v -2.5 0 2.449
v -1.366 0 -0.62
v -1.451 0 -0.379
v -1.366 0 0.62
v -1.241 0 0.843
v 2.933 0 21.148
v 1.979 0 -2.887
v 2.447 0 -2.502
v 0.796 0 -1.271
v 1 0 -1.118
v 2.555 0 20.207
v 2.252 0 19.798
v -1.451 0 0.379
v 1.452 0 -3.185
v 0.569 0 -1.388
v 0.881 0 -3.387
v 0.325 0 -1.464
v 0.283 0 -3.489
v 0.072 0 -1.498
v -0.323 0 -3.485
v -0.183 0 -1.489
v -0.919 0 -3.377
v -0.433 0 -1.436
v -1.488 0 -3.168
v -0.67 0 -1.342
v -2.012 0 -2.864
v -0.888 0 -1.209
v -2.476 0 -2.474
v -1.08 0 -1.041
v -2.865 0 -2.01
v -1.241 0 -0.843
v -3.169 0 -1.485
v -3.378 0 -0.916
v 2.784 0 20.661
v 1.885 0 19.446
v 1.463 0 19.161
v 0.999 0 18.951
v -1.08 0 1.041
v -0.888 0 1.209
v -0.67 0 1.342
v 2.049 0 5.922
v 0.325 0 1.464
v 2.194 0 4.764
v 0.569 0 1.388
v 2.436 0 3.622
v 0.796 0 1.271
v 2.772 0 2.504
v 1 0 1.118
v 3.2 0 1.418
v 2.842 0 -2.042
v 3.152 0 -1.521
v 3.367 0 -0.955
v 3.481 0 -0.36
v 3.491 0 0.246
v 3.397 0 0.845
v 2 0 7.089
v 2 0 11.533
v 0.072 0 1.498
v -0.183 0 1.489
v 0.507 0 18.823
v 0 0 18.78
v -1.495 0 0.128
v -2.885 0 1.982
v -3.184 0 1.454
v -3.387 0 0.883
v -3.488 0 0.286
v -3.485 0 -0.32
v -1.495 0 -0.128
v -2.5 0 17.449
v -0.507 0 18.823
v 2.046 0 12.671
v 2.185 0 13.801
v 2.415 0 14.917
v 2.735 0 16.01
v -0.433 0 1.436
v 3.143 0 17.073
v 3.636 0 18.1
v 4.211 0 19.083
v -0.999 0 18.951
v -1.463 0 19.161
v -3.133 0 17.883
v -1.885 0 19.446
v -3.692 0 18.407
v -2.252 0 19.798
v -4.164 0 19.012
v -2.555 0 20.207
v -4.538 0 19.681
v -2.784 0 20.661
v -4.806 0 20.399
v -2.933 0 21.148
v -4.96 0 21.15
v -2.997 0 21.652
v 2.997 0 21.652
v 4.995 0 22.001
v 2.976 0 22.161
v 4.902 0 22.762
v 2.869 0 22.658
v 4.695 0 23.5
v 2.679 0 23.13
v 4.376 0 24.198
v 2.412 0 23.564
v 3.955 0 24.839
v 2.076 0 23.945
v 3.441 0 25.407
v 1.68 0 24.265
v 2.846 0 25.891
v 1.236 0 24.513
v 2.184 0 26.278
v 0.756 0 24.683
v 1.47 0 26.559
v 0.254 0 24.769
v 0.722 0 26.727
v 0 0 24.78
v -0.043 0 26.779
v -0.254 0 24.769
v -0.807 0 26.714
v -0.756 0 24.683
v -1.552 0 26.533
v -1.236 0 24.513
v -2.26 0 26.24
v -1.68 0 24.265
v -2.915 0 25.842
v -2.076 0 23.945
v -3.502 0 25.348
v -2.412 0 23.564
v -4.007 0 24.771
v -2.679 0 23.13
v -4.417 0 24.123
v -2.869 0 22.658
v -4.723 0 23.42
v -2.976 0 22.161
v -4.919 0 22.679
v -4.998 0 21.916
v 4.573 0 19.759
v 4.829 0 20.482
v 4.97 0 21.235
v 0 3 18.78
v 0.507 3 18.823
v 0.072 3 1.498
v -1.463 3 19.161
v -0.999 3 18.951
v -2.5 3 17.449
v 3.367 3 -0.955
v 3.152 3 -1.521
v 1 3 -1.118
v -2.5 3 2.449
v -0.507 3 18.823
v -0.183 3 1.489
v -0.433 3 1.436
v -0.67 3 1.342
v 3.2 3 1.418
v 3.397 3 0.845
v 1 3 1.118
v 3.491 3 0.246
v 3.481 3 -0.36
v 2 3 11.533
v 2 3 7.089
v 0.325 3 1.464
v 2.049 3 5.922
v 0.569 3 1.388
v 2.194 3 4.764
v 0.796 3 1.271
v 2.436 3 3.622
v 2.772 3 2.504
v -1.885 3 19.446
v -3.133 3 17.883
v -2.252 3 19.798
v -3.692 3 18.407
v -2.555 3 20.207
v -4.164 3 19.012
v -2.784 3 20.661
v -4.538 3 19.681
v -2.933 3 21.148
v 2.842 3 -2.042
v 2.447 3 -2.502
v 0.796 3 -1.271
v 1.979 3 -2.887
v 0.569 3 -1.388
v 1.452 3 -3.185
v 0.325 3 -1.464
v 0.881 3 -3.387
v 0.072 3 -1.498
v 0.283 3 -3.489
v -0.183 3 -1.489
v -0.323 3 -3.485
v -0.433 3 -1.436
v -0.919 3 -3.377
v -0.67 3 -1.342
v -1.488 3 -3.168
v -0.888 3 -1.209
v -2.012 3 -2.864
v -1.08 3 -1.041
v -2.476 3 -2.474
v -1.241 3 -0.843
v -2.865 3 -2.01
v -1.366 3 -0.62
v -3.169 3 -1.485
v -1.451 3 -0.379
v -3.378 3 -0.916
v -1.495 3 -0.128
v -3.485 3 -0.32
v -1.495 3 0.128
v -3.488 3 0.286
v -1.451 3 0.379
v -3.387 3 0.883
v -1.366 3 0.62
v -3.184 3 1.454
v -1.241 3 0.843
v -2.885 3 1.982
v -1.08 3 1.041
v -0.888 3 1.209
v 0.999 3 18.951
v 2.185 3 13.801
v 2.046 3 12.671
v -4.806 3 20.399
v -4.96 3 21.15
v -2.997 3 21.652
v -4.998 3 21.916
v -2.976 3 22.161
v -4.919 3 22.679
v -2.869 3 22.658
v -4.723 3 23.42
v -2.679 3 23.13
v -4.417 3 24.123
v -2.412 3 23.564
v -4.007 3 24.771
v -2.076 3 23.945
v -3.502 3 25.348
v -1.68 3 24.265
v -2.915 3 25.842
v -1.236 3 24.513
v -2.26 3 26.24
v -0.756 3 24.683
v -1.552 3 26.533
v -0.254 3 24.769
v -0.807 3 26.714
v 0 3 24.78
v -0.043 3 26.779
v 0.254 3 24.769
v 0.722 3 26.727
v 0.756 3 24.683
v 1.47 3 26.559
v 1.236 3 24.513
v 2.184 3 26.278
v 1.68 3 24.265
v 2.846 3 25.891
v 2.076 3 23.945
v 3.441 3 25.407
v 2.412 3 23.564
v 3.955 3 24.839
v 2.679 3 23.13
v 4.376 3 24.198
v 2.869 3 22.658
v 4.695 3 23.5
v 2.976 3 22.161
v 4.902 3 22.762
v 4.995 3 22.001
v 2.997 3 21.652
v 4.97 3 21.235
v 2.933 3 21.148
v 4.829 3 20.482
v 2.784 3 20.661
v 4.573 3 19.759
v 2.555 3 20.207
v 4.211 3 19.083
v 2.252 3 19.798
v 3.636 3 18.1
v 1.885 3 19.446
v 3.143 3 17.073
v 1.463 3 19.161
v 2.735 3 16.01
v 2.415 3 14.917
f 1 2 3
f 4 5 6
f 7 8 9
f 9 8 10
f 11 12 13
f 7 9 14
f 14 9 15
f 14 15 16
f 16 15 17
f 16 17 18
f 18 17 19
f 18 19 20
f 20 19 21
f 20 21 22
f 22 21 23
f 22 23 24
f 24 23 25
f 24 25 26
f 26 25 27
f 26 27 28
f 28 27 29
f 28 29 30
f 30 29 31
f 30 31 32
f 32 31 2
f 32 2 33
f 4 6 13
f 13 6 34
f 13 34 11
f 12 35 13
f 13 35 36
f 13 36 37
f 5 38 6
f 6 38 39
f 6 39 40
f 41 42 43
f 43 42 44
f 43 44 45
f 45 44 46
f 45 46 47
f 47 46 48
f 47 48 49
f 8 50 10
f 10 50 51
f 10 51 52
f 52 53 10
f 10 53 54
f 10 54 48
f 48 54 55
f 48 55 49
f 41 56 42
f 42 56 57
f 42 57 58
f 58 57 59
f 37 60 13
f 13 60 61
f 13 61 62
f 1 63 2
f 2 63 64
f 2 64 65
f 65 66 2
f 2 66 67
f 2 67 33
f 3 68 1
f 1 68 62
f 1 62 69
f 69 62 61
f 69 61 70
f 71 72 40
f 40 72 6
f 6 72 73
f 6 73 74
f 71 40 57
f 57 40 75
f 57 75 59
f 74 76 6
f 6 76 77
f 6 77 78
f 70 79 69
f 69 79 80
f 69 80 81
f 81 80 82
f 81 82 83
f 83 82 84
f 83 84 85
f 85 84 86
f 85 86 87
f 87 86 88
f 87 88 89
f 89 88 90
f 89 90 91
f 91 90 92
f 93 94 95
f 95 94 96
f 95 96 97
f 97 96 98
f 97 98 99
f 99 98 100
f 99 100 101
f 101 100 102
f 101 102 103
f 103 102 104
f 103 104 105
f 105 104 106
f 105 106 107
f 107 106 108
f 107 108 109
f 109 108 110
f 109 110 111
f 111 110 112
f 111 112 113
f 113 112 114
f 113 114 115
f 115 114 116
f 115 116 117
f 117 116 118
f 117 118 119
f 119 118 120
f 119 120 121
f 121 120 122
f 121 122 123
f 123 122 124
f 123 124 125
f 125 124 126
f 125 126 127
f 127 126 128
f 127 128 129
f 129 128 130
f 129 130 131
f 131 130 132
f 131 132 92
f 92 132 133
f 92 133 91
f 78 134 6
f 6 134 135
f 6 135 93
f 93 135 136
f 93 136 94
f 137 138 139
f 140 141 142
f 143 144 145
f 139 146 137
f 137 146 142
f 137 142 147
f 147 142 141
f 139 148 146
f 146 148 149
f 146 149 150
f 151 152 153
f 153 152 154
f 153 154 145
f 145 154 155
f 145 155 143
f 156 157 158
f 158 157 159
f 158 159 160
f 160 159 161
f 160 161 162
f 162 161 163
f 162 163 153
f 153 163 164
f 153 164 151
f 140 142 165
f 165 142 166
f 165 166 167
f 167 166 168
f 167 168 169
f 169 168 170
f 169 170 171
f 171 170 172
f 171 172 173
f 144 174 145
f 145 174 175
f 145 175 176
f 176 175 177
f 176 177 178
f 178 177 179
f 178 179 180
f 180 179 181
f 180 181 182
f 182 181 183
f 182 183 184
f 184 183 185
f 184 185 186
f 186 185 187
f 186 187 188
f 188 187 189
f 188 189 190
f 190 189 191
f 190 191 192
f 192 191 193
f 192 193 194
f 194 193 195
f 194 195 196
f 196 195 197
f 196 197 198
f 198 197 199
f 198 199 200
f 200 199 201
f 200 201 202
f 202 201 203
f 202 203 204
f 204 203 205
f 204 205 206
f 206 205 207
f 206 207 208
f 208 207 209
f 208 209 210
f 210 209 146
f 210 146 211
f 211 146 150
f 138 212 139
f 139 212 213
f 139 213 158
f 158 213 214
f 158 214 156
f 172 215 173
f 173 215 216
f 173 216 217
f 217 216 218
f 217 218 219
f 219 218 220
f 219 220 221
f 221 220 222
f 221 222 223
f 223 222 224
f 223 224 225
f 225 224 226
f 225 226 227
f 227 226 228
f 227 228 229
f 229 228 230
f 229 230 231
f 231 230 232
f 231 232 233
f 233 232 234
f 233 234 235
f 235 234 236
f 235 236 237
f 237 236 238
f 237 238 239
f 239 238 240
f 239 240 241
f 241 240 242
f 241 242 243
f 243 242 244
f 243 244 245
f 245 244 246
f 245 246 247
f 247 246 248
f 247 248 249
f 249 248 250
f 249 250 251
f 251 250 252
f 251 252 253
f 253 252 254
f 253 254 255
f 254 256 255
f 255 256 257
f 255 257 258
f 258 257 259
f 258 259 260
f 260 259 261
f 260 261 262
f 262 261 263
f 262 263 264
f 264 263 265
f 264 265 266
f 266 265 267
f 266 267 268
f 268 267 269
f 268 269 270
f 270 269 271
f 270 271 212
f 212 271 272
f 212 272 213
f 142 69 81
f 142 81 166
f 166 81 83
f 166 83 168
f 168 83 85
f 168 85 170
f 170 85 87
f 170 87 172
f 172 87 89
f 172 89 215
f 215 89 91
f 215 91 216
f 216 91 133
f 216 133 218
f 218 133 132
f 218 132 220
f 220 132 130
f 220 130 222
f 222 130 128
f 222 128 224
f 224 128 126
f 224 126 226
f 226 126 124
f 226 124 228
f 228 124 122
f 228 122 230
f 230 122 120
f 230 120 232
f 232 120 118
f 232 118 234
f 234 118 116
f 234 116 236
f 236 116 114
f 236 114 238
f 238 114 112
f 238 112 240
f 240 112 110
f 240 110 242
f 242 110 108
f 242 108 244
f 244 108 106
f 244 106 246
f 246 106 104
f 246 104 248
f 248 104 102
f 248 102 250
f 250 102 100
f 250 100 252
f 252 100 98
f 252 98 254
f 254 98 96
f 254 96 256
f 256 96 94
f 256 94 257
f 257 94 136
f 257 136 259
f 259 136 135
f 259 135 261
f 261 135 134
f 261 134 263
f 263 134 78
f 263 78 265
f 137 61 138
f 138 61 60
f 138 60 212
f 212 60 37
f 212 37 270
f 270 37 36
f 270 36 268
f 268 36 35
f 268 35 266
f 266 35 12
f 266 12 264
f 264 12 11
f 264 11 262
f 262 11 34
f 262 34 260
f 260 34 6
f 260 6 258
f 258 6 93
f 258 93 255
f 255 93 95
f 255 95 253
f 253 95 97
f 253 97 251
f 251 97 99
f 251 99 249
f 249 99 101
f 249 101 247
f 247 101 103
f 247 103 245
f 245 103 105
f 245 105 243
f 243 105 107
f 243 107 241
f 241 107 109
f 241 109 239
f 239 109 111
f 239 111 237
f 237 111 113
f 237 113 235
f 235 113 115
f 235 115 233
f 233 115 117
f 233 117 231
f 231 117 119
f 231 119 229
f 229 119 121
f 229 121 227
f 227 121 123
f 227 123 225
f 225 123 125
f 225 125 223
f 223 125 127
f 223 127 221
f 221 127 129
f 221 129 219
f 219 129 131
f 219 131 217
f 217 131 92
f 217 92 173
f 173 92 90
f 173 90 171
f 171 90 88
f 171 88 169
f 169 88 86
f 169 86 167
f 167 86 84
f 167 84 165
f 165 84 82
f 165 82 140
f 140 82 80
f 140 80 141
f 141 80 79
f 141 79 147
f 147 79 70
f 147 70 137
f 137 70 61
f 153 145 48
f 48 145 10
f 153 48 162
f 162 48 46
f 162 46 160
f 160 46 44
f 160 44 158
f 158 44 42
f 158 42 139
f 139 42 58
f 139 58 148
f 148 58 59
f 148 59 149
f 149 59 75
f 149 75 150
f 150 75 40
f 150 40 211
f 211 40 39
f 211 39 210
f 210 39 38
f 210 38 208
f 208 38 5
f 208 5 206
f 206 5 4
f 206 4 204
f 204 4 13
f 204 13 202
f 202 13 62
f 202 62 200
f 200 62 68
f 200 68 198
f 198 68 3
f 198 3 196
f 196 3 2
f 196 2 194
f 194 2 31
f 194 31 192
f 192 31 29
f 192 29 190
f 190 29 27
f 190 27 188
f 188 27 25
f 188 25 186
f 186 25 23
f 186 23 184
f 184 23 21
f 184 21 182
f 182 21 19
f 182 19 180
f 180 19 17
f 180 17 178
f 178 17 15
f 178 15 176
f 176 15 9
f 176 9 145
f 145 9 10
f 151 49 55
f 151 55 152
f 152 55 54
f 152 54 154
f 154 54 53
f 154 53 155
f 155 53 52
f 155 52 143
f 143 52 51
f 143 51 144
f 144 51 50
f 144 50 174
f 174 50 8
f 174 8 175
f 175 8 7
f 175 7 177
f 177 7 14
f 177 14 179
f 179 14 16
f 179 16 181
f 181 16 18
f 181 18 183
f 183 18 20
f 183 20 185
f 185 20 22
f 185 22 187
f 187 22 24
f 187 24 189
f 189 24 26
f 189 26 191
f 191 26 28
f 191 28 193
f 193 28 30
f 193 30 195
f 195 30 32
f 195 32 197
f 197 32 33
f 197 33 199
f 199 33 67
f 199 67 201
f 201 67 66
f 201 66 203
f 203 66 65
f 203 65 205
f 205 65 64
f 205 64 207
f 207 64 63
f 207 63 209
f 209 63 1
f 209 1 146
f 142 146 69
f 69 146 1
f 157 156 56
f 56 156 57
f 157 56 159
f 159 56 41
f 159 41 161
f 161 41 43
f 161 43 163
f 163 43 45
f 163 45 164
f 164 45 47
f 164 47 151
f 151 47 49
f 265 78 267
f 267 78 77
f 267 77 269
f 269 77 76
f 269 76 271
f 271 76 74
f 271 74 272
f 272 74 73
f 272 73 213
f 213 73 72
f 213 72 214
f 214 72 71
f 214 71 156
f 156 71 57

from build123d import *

# Parameters (mm, degrees)
SKETCH_2_R          = 3
EXTRUDE_1_DEPTH     = 3
CUT_EXTRUDE_1_DEPTH = 28.407077077
FILLET_1_R          = 14


with BuildPart() as part:
    # 草图2 → 凸台-拉伸1 (new body)
    with BuildSketch(Plane(origin=(0, 0, 0), x_dir=(1, 0, 0), z_dir=(0, 1, 0))):
        with BuildLine():
            ThreePointArc((2.5, -2.449489743), (0, 3.5), (-2.5, -2.449489743))
            Line((-2.5, -2.449489743), (-2.5, -17.449489743))
            ThreePointArc((-2.5, -17.449489743), (0, -26.779616762), (2.5, -17.449489743))
            Line((2.5, -17.449489743), (2.5, -2.449489743))
        make_face()
        with BuildLine():
            Line((1, 1.118033989), (1, -1.118033989))
            ThreePointArc((1, -1.118033989), (-1.5, 0), (1, 1.118033989))
        make_face(mode=Mode.SUBTRACT)
        with Locations(Location((0, -21.779616762, 0), (0, 0, 270))):
            Circle(SKETCH_2_R, mode=Mode.SUBTRACT)
    extrude(amount=EXTRUDE_1_DEPTH)

    # 草图3 → 切除-拉伸1 (cut, through all)
    with BuildSketch(Plane.XZ):
        with BuildLine():
            ThreePointArc((2.5, 17.449489743), (2.253537793, 17.31625845), (2, 17.197041067))
            Line((2, 17.197041067), (2, 2.872281323))
            ThreePointArc((2, 2.872281323), (2.259908888, 2.67260394), (2.5, 2.449489743))
            Line((2.5, 2.449489743), (2.5, 17.449489743))
        make_face()
    extrude(amount=-CUT_EXTRUDE_1_DEPTH, mode=Mode.SUBTRACT)

    # 圆角1
    fillet_1_edges = [part.edges().sort_by_distance(p)[0] for p in [
        (2, 1.5, 2.872281323),
        (2, 1.5, 17.197041067),
    ]]
    fillet(fillet_1_edges, radius=FILLET_1_R)


solid = part.part
